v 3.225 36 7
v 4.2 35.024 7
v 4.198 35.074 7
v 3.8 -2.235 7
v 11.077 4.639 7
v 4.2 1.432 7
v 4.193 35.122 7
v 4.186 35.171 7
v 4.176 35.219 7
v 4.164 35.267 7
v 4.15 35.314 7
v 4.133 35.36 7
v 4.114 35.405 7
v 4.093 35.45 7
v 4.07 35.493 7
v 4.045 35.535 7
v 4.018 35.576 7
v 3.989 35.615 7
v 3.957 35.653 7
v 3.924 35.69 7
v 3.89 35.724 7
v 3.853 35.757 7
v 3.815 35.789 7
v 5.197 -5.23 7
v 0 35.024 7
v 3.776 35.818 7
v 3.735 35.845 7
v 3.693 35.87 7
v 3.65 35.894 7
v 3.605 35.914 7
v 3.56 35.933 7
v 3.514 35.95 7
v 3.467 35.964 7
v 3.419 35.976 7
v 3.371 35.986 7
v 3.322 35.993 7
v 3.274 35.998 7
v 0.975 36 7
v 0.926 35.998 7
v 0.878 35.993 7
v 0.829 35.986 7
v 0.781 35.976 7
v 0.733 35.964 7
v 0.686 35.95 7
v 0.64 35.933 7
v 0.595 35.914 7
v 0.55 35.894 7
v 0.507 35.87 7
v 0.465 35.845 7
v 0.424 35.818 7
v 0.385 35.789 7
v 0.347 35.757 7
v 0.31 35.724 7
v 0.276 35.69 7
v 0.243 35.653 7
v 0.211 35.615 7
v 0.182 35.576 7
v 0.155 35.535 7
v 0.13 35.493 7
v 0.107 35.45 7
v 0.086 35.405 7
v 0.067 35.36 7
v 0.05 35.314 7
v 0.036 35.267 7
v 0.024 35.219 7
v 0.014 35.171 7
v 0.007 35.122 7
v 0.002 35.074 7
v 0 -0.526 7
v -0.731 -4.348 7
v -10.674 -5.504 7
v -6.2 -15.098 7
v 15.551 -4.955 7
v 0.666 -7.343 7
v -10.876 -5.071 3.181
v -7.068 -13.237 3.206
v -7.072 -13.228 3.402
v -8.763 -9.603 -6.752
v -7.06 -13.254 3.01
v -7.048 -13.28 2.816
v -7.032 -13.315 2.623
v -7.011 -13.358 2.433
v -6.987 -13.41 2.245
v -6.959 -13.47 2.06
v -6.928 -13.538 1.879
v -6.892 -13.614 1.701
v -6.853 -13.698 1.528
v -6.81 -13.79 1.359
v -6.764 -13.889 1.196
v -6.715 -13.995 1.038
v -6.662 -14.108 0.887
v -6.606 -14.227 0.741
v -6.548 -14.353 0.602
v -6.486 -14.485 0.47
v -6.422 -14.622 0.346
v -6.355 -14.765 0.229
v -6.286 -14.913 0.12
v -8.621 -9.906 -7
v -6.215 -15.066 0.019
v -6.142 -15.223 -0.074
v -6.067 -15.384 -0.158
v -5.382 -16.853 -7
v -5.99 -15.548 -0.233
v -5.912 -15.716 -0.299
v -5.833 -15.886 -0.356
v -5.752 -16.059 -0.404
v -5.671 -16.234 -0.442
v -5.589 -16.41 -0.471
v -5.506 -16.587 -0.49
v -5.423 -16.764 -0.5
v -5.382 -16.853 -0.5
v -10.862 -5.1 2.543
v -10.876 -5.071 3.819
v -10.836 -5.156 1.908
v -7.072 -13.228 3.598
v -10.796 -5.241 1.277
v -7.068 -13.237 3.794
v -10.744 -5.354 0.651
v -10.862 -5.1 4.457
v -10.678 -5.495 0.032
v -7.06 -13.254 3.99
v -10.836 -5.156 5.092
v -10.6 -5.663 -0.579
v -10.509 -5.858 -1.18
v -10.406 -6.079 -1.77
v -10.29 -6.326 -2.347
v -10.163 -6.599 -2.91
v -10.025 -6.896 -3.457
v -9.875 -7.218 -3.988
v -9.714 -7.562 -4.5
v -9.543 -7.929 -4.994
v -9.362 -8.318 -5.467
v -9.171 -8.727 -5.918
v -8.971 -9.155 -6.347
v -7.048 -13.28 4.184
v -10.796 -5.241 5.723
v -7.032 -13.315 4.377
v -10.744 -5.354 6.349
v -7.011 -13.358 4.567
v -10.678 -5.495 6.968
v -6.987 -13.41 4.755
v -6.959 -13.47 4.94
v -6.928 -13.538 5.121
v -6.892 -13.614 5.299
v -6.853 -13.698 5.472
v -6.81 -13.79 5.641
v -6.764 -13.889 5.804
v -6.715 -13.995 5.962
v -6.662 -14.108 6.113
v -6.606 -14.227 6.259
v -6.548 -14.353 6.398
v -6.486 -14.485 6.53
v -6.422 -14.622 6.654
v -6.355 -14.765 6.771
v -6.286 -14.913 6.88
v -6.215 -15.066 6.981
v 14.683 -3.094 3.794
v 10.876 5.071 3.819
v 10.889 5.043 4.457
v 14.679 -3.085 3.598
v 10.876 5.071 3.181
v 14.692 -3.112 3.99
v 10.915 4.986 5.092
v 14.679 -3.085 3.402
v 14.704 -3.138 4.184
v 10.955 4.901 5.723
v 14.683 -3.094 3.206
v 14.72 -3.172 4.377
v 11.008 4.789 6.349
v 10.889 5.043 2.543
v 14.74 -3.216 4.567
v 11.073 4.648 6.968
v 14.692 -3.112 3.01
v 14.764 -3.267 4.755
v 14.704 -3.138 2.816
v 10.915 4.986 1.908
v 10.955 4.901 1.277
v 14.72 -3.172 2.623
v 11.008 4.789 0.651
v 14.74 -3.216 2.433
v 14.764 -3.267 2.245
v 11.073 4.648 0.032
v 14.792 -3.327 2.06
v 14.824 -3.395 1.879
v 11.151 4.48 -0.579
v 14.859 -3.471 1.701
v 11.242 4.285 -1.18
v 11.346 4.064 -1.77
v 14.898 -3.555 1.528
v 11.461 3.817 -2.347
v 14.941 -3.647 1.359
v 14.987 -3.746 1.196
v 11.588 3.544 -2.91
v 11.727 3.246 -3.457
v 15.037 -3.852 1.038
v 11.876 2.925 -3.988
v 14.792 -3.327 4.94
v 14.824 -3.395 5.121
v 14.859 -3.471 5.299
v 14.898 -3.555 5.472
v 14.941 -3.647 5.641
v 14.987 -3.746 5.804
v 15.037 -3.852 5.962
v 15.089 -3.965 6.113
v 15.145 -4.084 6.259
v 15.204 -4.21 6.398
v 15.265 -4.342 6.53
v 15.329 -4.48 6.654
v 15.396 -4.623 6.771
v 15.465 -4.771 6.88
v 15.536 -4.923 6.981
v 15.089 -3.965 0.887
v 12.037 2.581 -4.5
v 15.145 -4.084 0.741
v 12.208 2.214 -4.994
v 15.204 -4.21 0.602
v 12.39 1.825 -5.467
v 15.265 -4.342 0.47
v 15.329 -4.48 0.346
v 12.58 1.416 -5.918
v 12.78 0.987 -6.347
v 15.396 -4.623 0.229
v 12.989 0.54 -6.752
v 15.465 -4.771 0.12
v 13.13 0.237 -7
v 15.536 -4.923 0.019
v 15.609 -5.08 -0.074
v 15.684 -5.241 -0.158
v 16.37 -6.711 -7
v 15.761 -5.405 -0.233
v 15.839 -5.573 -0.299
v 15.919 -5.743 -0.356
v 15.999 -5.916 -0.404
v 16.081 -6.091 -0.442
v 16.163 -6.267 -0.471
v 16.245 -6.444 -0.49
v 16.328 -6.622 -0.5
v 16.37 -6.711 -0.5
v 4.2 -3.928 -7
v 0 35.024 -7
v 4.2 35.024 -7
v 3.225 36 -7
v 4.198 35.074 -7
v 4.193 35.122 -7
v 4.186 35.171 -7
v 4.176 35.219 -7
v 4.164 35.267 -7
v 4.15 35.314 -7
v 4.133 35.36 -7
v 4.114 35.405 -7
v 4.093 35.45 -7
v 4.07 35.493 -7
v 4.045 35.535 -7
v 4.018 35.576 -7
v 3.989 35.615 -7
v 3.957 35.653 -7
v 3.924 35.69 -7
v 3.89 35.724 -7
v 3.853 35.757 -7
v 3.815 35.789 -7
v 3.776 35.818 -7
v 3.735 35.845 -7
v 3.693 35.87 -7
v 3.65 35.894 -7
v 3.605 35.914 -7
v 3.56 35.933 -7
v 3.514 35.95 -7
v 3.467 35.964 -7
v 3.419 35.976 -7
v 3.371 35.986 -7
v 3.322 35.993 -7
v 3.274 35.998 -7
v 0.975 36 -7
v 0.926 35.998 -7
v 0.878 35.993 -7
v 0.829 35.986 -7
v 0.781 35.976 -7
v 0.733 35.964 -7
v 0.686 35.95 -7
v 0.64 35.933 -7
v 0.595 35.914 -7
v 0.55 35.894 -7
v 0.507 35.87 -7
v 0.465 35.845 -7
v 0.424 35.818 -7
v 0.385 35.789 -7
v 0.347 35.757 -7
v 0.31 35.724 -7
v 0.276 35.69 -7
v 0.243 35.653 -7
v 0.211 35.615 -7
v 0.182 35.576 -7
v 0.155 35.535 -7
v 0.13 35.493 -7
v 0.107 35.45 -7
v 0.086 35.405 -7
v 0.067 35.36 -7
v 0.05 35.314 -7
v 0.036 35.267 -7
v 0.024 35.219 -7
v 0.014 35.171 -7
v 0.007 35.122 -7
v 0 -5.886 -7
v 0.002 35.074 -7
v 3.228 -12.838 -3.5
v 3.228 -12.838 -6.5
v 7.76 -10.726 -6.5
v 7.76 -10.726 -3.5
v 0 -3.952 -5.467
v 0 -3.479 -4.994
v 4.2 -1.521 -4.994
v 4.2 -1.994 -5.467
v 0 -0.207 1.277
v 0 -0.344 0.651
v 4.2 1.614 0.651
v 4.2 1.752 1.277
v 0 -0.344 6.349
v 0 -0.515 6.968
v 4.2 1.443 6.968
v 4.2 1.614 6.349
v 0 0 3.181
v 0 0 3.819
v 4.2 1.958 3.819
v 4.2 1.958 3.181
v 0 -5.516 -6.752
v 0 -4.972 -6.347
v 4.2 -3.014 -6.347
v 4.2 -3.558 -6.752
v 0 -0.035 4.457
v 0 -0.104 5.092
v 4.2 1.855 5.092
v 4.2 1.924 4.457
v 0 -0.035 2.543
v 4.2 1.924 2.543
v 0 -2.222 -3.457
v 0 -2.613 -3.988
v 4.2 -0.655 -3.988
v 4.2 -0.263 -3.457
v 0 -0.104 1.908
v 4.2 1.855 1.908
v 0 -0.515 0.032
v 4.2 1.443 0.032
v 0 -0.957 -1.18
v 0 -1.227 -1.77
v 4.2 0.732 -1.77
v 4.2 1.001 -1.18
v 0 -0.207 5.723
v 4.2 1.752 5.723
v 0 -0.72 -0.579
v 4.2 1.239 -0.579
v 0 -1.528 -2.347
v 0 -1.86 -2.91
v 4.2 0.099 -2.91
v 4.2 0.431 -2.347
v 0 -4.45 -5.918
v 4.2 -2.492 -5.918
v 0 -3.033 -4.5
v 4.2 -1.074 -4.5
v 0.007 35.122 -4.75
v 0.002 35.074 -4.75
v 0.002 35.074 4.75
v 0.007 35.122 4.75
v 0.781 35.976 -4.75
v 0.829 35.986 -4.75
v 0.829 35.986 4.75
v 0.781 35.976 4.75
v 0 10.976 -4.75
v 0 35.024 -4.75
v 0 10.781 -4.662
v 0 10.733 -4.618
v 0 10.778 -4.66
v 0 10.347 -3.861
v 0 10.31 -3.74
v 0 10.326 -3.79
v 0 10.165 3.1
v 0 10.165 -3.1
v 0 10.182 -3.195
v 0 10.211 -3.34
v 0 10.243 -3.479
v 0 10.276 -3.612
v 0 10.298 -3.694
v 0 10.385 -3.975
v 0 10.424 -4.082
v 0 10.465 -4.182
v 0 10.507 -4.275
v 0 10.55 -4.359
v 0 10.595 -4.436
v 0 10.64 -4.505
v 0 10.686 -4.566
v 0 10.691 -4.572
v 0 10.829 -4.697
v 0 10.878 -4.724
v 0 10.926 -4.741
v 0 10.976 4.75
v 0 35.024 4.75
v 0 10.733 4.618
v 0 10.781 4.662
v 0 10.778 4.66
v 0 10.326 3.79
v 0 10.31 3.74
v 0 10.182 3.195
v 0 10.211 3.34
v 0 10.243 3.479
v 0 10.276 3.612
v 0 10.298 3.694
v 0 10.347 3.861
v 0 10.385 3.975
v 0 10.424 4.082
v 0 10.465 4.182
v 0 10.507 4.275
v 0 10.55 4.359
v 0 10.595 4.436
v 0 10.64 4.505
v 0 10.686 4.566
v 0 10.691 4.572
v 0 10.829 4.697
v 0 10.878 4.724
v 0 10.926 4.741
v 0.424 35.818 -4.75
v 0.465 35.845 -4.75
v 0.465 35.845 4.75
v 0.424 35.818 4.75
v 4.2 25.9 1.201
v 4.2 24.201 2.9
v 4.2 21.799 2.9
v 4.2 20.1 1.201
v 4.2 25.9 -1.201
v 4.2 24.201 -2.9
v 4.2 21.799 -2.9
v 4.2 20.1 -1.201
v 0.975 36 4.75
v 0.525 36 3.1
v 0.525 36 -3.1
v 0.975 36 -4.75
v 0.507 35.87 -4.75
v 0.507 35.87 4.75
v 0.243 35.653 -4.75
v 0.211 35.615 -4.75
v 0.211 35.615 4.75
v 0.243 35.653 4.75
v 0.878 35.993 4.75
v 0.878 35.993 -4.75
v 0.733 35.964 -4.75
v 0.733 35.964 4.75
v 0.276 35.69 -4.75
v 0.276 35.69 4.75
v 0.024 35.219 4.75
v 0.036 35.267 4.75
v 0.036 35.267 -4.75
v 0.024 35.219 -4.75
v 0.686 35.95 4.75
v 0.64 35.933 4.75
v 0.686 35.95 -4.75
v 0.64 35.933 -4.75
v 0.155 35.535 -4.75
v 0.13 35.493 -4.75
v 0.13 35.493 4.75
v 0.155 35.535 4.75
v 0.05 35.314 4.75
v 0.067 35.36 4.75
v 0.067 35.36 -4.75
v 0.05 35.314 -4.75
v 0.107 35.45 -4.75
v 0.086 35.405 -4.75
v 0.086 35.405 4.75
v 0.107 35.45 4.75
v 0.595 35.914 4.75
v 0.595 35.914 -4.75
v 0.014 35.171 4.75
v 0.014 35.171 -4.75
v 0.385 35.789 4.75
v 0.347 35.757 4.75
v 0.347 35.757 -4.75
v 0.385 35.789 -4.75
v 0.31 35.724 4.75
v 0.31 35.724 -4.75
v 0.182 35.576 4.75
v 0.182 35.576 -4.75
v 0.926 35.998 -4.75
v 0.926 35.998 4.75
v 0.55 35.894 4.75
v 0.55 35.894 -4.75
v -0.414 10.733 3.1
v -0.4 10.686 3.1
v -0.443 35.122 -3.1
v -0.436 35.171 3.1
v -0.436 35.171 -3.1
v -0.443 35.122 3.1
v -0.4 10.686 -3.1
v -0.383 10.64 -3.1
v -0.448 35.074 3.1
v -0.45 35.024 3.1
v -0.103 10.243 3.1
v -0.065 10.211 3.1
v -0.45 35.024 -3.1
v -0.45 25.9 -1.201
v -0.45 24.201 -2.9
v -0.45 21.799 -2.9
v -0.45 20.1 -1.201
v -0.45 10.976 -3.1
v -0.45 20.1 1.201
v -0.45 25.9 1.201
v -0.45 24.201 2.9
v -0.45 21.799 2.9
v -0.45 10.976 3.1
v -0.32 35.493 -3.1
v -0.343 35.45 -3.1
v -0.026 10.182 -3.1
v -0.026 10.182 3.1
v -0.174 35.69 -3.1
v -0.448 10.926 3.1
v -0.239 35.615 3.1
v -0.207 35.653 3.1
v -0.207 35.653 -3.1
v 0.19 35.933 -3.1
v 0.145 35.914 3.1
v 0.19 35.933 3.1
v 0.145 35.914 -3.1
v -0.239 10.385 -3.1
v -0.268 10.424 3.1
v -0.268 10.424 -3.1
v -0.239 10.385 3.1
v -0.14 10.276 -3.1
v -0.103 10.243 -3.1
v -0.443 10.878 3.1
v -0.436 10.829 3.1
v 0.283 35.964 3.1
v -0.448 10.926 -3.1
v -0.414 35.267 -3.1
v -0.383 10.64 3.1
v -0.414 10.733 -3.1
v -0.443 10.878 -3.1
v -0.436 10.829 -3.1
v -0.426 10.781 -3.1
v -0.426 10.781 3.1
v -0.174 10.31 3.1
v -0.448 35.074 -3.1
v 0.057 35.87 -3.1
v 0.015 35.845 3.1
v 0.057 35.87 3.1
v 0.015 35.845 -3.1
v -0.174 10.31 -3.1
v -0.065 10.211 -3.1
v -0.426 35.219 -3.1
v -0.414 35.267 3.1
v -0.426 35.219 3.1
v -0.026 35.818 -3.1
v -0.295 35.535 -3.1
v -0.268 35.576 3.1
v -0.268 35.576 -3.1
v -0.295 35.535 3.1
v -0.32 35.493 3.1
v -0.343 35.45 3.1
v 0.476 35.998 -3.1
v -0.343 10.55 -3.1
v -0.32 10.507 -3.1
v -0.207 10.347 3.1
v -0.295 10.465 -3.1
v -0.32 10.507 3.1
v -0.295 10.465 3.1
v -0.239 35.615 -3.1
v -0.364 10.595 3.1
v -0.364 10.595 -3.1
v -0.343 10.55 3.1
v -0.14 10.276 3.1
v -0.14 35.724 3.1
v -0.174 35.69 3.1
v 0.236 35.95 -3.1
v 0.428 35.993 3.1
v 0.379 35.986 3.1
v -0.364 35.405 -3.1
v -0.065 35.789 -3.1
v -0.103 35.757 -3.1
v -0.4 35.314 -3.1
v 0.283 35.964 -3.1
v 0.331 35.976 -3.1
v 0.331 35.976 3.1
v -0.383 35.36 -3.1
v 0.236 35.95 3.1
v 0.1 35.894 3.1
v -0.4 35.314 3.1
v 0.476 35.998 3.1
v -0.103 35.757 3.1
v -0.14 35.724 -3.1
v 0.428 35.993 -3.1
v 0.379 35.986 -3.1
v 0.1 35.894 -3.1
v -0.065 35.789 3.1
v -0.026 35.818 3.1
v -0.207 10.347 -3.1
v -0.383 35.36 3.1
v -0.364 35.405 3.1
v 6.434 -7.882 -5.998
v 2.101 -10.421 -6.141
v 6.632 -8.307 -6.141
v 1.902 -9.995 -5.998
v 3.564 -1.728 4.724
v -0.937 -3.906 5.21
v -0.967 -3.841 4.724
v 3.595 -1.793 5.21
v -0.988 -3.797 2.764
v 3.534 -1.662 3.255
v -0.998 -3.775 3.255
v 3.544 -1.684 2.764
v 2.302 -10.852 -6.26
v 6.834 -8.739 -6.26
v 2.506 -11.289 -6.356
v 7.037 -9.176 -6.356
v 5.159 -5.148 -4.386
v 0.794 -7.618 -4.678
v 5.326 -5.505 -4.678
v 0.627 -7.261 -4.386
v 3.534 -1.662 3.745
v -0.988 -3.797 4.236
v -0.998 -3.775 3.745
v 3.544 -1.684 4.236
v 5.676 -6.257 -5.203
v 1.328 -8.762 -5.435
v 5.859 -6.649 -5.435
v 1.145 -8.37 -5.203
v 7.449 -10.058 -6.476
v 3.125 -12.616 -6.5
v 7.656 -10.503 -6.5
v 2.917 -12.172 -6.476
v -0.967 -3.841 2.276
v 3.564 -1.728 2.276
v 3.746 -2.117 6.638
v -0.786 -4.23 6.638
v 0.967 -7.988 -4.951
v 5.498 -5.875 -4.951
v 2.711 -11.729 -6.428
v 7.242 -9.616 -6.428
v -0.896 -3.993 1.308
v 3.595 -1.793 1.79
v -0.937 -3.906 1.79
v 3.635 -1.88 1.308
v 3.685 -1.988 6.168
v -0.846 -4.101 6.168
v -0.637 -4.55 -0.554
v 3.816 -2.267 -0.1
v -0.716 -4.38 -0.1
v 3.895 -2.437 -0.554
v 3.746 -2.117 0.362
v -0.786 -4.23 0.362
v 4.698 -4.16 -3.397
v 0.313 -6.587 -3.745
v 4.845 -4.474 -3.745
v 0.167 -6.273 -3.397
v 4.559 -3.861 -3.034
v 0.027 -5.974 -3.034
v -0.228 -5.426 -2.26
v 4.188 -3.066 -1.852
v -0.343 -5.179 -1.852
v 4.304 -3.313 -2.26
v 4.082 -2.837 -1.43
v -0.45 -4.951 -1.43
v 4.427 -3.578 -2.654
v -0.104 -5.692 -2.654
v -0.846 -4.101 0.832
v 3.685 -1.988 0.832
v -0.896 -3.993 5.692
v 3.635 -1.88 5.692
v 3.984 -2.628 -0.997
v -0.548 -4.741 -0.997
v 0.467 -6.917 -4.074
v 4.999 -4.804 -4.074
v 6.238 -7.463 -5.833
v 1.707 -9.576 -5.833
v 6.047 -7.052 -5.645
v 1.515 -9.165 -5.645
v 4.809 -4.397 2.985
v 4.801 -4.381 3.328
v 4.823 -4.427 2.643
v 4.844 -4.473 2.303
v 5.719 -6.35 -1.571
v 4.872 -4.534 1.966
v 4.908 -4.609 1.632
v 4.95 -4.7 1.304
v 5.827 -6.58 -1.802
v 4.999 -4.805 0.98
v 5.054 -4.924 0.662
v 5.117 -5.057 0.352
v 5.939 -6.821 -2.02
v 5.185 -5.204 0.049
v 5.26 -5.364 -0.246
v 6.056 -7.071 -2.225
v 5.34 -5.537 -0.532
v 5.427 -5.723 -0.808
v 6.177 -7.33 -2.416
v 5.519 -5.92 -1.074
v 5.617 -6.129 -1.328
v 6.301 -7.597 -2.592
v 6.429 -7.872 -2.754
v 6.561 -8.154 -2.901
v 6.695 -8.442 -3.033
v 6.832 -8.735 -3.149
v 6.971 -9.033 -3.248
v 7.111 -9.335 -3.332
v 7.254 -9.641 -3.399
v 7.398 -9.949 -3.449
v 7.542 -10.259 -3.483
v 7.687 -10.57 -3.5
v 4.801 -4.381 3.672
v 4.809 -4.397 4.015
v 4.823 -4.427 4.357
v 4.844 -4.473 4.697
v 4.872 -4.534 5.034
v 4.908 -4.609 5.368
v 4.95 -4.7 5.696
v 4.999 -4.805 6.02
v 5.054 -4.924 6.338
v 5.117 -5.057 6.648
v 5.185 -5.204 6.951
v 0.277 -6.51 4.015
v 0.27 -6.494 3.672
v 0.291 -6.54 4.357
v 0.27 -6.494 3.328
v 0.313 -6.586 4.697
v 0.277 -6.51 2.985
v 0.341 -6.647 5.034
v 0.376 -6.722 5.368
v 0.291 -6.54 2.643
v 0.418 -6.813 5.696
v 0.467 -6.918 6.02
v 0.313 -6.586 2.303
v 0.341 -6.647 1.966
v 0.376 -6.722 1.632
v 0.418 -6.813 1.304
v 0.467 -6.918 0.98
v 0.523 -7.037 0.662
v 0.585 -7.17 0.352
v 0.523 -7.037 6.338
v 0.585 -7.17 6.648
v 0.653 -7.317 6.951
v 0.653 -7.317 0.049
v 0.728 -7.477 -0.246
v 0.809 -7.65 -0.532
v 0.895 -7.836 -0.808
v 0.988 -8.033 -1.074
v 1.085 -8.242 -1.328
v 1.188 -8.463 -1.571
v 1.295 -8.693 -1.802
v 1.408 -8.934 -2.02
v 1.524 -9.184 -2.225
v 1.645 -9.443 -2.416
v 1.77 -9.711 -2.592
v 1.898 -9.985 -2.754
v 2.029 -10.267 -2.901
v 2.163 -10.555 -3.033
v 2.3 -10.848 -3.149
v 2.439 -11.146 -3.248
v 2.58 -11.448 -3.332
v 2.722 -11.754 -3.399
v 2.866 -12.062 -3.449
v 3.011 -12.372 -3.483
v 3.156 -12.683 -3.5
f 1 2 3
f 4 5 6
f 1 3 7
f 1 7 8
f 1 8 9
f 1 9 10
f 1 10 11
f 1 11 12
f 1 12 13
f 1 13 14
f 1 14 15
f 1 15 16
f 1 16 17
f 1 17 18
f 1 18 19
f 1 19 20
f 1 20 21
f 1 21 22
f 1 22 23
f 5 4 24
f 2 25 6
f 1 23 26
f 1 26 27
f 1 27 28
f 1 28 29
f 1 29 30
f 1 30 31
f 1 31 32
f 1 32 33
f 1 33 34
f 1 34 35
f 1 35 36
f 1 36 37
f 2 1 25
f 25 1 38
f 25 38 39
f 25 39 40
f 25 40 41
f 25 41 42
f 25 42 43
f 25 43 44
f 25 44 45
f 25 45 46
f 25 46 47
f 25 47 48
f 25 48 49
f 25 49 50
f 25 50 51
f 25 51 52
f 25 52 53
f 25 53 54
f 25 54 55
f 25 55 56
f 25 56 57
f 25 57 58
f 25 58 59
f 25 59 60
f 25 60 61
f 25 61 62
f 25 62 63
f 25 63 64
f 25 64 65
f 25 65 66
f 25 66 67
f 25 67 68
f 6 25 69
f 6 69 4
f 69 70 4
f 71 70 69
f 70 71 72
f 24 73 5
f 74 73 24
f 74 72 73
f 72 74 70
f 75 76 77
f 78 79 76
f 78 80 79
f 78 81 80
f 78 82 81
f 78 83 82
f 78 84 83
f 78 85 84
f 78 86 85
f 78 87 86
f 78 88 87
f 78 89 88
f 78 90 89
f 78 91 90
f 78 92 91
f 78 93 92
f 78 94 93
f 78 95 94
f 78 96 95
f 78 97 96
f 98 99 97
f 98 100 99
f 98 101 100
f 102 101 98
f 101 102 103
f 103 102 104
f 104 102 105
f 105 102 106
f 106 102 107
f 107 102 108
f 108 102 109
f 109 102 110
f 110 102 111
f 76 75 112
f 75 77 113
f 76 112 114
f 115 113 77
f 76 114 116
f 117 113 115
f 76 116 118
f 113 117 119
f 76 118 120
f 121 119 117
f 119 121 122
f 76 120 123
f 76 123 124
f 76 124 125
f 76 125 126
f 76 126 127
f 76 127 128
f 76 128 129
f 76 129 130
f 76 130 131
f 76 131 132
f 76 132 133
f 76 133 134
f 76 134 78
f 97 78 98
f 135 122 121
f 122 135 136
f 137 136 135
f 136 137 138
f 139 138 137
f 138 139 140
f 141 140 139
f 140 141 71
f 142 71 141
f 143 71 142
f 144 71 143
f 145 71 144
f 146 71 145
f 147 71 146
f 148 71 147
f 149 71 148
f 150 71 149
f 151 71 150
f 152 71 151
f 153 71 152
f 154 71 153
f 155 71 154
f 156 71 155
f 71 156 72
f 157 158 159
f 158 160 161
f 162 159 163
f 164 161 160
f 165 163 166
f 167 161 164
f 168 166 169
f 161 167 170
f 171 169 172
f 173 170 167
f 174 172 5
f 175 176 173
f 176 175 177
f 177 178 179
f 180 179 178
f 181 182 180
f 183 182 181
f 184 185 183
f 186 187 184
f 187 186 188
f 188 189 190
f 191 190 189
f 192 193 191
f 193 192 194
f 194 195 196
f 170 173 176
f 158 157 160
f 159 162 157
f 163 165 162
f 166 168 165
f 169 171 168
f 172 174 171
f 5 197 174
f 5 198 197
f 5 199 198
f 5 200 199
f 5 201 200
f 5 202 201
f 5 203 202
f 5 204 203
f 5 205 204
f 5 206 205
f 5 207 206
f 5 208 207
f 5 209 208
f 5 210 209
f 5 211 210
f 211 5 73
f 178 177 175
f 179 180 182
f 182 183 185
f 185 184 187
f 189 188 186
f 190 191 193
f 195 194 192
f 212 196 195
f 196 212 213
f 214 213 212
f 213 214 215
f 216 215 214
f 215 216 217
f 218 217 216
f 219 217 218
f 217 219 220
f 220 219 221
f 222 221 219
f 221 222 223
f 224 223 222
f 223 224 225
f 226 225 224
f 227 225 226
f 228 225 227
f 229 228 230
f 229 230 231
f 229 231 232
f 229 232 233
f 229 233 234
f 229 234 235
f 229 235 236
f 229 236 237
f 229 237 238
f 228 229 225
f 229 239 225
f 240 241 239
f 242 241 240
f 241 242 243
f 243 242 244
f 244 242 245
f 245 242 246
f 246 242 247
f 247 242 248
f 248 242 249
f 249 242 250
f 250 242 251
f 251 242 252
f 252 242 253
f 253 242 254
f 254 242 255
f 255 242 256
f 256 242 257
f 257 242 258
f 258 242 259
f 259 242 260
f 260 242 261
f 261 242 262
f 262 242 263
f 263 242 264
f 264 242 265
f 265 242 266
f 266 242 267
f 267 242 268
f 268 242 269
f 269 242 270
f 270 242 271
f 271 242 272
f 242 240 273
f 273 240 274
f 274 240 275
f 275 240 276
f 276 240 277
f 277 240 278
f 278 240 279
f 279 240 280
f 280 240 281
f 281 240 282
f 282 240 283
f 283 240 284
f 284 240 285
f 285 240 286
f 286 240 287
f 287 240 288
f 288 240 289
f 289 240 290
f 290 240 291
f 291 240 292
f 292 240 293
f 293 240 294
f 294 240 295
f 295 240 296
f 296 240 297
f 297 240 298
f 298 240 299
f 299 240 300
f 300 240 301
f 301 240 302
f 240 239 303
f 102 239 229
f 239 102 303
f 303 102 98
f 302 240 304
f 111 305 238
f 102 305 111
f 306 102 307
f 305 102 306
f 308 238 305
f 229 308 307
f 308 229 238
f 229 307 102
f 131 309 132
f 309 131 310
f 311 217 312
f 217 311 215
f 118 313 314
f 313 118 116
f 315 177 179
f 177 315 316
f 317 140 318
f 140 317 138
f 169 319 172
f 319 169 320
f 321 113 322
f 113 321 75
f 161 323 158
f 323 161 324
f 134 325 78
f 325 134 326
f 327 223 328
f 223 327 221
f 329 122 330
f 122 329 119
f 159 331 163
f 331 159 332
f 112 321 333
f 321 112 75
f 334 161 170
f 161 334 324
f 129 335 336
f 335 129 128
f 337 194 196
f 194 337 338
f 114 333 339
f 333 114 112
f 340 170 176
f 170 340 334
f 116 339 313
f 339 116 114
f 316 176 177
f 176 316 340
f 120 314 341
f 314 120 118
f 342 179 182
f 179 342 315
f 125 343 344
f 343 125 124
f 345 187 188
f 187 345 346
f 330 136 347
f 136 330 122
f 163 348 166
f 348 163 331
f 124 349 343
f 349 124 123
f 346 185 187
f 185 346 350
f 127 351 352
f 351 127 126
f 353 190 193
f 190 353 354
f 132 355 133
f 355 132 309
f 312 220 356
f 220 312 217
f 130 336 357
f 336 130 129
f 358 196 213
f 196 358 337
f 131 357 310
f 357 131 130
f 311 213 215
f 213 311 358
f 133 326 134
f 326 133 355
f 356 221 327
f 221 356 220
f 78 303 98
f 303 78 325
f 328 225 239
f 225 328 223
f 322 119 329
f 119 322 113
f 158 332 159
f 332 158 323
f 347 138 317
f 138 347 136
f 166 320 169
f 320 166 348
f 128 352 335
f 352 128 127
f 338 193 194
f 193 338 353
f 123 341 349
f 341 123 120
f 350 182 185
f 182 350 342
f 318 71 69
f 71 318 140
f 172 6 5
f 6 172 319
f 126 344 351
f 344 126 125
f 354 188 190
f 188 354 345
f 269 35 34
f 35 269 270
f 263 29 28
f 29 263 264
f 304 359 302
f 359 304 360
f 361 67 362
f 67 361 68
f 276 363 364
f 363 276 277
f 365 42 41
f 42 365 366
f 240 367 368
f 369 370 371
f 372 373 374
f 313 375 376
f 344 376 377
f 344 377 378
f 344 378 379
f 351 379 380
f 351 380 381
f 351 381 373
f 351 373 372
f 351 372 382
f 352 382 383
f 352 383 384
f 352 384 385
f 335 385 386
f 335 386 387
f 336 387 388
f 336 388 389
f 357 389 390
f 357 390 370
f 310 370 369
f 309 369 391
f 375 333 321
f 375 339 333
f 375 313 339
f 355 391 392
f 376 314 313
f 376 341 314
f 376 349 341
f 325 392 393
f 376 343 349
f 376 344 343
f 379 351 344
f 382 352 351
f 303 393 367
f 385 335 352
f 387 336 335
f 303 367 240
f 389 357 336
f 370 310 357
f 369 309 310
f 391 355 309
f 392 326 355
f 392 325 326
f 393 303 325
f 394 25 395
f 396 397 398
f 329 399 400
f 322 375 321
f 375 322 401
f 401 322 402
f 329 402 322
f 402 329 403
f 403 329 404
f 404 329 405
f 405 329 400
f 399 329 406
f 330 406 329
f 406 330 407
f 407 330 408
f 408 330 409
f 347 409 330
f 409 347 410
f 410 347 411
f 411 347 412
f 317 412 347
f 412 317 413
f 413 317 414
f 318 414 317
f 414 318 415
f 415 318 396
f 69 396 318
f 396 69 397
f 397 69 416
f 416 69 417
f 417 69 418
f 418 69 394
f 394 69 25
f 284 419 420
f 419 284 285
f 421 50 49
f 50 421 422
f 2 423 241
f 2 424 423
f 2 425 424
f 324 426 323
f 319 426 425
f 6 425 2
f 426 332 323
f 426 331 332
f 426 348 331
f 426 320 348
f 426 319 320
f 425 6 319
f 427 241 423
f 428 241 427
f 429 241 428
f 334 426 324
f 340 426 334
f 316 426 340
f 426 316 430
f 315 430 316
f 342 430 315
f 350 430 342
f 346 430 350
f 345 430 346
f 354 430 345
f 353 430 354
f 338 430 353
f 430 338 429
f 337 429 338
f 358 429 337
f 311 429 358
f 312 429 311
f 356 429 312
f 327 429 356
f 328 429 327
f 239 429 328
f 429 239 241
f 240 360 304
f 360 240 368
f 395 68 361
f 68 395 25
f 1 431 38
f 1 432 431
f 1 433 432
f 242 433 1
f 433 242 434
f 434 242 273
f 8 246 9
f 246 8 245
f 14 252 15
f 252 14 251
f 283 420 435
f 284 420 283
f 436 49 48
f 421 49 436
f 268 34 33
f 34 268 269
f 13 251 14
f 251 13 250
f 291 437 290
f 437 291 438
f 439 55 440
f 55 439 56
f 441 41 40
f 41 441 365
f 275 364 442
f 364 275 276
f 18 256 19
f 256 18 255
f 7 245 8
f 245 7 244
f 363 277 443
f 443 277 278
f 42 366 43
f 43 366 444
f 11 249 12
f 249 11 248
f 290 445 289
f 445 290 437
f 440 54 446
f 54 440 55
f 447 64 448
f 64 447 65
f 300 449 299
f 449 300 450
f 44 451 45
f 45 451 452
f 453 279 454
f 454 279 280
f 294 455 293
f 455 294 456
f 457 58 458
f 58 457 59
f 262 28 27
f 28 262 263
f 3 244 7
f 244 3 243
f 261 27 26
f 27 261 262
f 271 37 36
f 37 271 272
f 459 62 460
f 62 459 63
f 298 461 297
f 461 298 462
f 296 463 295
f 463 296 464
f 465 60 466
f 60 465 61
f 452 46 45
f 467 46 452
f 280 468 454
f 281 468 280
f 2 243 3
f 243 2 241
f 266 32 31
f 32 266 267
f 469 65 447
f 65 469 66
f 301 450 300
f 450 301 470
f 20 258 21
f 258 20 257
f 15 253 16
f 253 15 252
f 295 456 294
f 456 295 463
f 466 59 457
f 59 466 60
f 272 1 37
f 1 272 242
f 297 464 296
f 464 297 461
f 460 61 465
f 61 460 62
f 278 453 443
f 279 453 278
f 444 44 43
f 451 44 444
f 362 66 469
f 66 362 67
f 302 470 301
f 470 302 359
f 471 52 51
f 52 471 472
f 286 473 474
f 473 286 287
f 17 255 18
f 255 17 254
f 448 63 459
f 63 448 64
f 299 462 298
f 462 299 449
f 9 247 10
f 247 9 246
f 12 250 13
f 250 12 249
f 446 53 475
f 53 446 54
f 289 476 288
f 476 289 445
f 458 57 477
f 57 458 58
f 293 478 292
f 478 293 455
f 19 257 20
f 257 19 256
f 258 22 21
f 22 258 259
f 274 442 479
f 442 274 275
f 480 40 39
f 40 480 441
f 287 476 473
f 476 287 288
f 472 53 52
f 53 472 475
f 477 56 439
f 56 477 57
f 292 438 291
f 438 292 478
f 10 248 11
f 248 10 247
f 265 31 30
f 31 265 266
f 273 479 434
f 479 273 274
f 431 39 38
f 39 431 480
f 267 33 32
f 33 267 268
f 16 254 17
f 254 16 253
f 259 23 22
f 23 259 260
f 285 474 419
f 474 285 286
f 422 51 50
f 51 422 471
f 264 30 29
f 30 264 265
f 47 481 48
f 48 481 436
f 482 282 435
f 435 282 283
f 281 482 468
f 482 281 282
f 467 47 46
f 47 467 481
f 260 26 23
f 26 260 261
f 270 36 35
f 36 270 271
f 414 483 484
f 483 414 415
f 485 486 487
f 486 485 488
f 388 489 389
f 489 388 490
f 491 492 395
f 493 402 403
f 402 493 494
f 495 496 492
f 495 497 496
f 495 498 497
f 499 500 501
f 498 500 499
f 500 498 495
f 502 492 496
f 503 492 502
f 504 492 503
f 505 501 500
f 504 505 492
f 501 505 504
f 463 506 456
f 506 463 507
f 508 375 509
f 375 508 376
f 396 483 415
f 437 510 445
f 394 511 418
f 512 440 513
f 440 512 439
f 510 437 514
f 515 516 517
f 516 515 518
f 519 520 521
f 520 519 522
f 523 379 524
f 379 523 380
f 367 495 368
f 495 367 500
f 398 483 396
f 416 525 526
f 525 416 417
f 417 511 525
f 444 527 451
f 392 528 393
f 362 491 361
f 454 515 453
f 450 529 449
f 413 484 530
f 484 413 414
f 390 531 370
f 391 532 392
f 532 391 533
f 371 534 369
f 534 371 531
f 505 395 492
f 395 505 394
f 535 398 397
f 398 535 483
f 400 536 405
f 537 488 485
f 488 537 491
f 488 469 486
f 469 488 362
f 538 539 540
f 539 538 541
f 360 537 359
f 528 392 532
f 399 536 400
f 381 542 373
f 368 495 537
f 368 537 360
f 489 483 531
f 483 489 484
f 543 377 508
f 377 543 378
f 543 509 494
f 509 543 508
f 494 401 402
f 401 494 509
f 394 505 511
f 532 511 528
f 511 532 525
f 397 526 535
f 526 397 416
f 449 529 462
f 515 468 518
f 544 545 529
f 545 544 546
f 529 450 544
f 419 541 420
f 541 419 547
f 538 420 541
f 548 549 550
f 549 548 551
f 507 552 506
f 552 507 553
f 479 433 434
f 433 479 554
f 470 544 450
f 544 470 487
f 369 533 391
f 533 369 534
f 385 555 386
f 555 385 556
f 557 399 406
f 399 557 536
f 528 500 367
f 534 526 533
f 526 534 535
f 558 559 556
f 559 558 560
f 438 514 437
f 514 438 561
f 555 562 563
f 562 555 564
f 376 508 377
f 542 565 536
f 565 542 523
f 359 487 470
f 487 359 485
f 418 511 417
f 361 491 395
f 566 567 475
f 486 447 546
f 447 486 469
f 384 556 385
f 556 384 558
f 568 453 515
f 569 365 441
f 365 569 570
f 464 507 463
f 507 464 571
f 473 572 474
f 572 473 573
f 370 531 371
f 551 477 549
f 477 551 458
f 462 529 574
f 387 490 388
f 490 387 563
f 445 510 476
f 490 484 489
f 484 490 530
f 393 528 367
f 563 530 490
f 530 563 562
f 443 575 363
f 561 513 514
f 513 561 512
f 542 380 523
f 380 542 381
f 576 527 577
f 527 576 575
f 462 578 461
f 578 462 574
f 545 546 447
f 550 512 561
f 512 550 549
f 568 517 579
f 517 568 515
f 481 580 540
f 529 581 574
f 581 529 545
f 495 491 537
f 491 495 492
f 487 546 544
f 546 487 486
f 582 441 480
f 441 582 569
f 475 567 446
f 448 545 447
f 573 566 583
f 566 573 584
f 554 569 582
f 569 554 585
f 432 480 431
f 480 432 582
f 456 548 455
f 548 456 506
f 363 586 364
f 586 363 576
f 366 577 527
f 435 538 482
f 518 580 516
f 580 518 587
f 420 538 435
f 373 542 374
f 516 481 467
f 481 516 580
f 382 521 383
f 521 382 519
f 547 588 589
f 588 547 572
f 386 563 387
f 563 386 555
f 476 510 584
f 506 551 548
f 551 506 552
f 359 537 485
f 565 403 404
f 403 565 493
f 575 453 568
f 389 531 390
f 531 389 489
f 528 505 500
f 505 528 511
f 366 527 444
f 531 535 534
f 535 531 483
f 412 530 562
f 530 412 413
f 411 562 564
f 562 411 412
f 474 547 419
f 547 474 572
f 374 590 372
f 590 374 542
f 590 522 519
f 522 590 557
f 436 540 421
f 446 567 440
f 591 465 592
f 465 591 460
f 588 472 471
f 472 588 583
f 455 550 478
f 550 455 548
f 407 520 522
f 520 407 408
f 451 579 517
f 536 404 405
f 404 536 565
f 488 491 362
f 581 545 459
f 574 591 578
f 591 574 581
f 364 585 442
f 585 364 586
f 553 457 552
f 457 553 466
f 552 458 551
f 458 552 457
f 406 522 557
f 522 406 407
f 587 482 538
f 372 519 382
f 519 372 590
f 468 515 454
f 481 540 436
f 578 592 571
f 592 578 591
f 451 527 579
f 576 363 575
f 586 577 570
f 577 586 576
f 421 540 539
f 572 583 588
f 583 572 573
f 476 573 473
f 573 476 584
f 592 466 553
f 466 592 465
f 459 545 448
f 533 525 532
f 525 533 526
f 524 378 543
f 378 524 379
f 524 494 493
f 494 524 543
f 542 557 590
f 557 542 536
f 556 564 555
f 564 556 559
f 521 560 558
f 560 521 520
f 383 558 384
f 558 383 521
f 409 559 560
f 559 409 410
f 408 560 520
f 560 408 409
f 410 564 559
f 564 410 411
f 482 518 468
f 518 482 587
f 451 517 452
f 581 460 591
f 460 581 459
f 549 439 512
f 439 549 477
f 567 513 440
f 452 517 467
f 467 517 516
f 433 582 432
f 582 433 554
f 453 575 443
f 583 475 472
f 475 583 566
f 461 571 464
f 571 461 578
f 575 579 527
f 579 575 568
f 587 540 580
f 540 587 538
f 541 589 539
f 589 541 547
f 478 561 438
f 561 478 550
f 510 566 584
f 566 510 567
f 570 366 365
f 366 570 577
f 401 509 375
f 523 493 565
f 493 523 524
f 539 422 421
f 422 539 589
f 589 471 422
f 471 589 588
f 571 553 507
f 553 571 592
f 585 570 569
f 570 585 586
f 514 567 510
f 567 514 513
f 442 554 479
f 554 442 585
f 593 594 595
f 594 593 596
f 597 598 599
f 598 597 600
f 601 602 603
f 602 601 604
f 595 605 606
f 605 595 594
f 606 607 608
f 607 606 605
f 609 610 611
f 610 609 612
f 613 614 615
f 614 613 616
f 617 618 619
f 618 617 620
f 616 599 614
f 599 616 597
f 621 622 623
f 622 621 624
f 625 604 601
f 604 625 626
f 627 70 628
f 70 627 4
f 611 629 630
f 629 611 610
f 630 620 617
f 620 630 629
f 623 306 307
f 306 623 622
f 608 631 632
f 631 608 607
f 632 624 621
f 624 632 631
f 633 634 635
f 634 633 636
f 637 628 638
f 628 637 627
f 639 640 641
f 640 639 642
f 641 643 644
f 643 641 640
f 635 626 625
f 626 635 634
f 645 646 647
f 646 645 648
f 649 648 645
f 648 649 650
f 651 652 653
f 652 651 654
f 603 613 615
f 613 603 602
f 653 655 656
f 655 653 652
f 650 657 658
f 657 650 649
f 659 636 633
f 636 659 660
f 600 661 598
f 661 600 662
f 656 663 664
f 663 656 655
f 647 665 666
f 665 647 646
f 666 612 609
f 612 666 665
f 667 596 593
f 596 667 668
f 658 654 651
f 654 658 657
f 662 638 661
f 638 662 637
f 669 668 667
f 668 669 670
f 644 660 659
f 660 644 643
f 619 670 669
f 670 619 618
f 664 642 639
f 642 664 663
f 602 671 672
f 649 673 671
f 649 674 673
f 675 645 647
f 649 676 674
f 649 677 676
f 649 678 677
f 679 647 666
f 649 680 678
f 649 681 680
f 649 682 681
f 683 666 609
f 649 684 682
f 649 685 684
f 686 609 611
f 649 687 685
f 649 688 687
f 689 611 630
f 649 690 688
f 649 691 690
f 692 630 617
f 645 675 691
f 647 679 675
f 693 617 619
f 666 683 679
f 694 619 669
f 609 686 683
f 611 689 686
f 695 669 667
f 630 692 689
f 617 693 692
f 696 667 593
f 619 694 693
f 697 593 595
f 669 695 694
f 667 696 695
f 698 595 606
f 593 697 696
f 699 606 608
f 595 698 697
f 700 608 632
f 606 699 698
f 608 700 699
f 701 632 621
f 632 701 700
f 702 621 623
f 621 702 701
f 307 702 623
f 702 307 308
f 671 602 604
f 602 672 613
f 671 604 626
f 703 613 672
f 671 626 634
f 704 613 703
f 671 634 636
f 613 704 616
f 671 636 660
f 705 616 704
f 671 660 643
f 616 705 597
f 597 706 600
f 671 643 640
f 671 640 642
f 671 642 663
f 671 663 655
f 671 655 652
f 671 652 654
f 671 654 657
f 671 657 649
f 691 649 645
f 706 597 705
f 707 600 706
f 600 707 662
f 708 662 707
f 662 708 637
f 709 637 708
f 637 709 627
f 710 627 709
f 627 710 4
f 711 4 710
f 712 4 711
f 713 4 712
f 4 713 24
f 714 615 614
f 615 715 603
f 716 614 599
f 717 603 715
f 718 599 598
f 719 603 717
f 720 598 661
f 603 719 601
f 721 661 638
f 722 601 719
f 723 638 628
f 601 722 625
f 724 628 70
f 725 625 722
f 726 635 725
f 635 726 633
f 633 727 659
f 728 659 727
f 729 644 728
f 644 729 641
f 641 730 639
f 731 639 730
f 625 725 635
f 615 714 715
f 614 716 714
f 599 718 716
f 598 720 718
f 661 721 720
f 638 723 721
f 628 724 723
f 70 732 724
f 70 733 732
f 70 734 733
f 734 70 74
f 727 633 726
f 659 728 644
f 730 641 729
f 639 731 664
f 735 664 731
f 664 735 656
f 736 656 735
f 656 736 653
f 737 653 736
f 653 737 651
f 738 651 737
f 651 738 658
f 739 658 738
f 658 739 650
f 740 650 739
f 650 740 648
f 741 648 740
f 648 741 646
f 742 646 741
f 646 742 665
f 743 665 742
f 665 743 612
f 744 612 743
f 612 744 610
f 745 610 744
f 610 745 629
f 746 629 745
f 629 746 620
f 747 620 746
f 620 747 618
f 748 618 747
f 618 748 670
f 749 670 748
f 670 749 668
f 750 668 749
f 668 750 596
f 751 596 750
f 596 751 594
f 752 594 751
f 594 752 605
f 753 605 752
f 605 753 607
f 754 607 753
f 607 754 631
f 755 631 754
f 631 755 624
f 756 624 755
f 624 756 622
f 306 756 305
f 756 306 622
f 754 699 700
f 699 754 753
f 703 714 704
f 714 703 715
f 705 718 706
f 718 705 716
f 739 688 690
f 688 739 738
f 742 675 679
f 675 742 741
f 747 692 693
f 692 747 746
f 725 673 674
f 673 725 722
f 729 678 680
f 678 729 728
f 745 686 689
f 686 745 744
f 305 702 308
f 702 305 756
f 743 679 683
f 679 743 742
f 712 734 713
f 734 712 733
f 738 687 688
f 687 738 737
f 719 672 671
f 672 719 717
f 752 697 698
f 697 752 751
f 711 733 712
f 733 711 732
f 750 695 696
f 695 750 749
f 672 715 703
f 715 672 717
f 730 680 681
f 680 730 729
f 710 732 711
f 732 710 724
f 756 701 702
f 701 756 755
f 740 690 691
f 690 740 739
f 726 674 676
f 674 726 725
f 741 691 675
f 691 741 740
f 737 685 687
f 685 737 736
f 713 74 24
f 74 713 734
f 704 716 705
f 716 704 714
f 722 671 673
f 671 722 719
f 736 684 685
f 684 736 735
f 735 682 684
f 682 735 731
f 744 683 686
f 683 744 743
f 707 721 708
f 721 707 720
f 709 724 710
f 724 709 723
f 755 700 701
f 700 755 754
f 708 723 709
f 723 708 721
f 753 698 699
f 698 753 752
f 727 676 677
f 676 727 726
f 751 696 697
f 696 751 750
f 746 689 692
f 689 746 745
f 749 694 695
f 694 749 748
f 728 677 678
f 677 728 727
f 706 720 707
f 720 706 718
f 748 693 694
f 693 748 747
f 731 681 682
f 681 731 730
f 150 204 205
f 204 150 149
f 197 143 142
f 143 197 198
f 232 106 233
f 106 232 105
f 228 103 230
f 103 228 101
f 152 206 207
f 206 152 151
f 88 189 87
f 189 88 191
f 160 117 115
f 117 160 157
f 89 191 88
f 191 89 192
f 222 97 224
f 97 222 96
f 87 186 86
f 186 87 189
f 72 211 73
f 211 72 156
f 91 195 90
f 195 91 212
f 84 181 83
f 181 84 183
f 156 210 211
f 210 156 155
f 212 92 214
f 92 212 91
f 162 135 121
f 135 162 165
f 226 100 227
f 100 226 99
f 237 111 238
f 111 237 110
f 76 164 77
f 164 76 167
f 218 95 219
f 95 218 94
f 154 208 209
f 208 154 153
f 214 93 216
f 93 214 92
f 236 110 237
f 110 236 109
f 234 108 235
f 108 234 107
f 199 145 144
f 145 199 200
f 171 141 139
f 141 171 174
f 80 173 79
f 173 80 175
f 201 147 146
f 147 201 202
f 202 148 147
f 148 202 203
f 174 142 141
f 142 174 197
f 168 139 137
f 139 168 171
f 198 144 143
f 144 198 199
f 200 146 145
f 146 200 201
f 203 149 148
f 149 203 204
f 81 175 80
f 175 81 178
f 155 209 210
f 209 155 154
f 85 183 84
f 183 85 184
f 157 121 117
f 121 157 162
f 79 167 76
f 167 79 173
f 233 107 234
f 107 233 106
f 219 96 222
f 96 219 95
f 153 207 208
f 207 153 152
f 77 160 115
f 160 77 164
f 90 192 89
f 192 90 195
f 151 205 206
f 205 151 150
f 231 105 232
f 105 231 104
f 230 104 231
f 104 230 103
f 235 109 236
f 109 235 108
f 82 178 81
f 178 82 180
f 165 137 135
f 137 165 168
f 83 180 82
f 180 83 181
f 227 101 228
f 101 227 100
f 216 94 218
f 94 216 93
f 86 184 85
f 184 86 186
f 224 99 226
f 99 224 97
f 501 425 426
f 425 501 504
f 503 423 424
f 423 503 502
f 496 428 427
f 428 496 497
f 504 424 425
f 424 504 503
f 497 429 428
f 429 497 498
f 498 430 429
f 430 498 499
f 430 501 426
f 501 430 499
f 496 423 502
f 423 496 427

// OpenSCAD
// file: ../strain-relief.scad
include <lumpyscad/lib.scad>;

resolution = 128;
extrusion_width = 0.5;
wall_thickness = 1.5;
tolerance = 0.2;

wire_angle = 25;

m5_t_slot_nut_length = 12;
screw_length = 10;
screw_t_slot_nut_engagement = 4;

mount_height = 14;
mount_length_past_end = 8;
mount_length_in_v_slot = 36;
mount_length = mount_length_in_v_slot+mount_length_past_end;
mount_depth = screw_length-v_slot_depth-screw_t_slot_nut_engagement;
wire_cavity_diam = 8;
wire_area_depth = 16;
base_thickness = 2;

zip_tie_width = 5;
zip_tie_thickness = 3;
zip_tie_id = wire_cavity_diam+wall_thickness*4;
zip_tie_od = zip_tie_id + zip_tie_thickness*2;
rounded_diam = 2;
wire_area_od = zip_tie_od+wall_thickness*4;
wire_area_width = 24;
wire_area_offset_z = mount_height*0.25;

module y_axis_strain_relief_mount() {
  slot_length = mount_length_in_v_slot - 10;

  module position_wire() {
    rotate([0,0,wire_angle]) {
      translate([0,-wire_area_od/2,wire_area_offset_z]) {
        rotate([0,-90,0]) {
          translate([0,0,0]) {
            children();
          }
        }
      }
    }
  }

  module body() {
    translate([mount_depth/2,mount_length/2-mount_length_past_end,0]) {
      rounded_cube(mount_depth,mount_length,mount_height,rounded_diam,resolution);
    }
    position_wire() {
      intersection() {
        translate([-wire_area_offset_z,wire_area_od/2,0]) {
          cube([mount_height,wire_area_od,wire_area_width],center=true);
        }
        hole(wire_area_od,200,resolution);
      }
    }
    hull() {
      translate([rounded_diam/2,mount_length_in_v_slot-slot_length/2,0]) {
        rounded_cube(rounded_diam,slot_length,v_slot_width,rounded_diam,resolution);
        translate([-v_slot_depth*0.25,0,0]) {
          rounded_cube(rounded_diam,slot_length,v_slot_opening,rounded_diam,resolution);
        }
      }
    }

    /*
    hull() {
      translate([0,0,-mount_height/2+base_thickness/2]) {
        translate([mount_depth/2,mount_length/2-mount_length_past_end,0]) {
          rounded_cube(mount_depth,mount_length,base_thickness,rounded_diam,resolution);
        }

        position_wire() {
          rotate([0,90,0]) {
            translate([wire_area_width/4,wire_cavity_diam/2,-wire_area_offset_z]) {
              cube([wire_area_width/2,1,base_thickness],center=true);
            }
          }
        }
      }
    }
    */
  }

  module holes() {
    position_wire() {
      hole(wire_cavity_diam,40,resolution);
      translate([wire_cavity_diam,0,0]) {
        // cube([wire_cavity_diam*2,wire_cavity_diam,40],center=true);
      }

      width = zip_tie_width;
      difference() {
        hole(zip_tie_od,width,resolution);
        hole(zip_tie_id,width+1,resolution);
      }
    }

    translate([mount_depth,mount_length_in_v_slot-slot_length/2,0]) {
      rotate([0,90,0]) {
        hole(m5_diam+tolerance*4,screw_length*2,8);
      }
    }
  }

  difference() {
    body();
    holes();
  }
}

y_axis_strain_relief_mount();
// main file
use <../strain-relief.scad>;

y_axis_strain_relief_mount();
